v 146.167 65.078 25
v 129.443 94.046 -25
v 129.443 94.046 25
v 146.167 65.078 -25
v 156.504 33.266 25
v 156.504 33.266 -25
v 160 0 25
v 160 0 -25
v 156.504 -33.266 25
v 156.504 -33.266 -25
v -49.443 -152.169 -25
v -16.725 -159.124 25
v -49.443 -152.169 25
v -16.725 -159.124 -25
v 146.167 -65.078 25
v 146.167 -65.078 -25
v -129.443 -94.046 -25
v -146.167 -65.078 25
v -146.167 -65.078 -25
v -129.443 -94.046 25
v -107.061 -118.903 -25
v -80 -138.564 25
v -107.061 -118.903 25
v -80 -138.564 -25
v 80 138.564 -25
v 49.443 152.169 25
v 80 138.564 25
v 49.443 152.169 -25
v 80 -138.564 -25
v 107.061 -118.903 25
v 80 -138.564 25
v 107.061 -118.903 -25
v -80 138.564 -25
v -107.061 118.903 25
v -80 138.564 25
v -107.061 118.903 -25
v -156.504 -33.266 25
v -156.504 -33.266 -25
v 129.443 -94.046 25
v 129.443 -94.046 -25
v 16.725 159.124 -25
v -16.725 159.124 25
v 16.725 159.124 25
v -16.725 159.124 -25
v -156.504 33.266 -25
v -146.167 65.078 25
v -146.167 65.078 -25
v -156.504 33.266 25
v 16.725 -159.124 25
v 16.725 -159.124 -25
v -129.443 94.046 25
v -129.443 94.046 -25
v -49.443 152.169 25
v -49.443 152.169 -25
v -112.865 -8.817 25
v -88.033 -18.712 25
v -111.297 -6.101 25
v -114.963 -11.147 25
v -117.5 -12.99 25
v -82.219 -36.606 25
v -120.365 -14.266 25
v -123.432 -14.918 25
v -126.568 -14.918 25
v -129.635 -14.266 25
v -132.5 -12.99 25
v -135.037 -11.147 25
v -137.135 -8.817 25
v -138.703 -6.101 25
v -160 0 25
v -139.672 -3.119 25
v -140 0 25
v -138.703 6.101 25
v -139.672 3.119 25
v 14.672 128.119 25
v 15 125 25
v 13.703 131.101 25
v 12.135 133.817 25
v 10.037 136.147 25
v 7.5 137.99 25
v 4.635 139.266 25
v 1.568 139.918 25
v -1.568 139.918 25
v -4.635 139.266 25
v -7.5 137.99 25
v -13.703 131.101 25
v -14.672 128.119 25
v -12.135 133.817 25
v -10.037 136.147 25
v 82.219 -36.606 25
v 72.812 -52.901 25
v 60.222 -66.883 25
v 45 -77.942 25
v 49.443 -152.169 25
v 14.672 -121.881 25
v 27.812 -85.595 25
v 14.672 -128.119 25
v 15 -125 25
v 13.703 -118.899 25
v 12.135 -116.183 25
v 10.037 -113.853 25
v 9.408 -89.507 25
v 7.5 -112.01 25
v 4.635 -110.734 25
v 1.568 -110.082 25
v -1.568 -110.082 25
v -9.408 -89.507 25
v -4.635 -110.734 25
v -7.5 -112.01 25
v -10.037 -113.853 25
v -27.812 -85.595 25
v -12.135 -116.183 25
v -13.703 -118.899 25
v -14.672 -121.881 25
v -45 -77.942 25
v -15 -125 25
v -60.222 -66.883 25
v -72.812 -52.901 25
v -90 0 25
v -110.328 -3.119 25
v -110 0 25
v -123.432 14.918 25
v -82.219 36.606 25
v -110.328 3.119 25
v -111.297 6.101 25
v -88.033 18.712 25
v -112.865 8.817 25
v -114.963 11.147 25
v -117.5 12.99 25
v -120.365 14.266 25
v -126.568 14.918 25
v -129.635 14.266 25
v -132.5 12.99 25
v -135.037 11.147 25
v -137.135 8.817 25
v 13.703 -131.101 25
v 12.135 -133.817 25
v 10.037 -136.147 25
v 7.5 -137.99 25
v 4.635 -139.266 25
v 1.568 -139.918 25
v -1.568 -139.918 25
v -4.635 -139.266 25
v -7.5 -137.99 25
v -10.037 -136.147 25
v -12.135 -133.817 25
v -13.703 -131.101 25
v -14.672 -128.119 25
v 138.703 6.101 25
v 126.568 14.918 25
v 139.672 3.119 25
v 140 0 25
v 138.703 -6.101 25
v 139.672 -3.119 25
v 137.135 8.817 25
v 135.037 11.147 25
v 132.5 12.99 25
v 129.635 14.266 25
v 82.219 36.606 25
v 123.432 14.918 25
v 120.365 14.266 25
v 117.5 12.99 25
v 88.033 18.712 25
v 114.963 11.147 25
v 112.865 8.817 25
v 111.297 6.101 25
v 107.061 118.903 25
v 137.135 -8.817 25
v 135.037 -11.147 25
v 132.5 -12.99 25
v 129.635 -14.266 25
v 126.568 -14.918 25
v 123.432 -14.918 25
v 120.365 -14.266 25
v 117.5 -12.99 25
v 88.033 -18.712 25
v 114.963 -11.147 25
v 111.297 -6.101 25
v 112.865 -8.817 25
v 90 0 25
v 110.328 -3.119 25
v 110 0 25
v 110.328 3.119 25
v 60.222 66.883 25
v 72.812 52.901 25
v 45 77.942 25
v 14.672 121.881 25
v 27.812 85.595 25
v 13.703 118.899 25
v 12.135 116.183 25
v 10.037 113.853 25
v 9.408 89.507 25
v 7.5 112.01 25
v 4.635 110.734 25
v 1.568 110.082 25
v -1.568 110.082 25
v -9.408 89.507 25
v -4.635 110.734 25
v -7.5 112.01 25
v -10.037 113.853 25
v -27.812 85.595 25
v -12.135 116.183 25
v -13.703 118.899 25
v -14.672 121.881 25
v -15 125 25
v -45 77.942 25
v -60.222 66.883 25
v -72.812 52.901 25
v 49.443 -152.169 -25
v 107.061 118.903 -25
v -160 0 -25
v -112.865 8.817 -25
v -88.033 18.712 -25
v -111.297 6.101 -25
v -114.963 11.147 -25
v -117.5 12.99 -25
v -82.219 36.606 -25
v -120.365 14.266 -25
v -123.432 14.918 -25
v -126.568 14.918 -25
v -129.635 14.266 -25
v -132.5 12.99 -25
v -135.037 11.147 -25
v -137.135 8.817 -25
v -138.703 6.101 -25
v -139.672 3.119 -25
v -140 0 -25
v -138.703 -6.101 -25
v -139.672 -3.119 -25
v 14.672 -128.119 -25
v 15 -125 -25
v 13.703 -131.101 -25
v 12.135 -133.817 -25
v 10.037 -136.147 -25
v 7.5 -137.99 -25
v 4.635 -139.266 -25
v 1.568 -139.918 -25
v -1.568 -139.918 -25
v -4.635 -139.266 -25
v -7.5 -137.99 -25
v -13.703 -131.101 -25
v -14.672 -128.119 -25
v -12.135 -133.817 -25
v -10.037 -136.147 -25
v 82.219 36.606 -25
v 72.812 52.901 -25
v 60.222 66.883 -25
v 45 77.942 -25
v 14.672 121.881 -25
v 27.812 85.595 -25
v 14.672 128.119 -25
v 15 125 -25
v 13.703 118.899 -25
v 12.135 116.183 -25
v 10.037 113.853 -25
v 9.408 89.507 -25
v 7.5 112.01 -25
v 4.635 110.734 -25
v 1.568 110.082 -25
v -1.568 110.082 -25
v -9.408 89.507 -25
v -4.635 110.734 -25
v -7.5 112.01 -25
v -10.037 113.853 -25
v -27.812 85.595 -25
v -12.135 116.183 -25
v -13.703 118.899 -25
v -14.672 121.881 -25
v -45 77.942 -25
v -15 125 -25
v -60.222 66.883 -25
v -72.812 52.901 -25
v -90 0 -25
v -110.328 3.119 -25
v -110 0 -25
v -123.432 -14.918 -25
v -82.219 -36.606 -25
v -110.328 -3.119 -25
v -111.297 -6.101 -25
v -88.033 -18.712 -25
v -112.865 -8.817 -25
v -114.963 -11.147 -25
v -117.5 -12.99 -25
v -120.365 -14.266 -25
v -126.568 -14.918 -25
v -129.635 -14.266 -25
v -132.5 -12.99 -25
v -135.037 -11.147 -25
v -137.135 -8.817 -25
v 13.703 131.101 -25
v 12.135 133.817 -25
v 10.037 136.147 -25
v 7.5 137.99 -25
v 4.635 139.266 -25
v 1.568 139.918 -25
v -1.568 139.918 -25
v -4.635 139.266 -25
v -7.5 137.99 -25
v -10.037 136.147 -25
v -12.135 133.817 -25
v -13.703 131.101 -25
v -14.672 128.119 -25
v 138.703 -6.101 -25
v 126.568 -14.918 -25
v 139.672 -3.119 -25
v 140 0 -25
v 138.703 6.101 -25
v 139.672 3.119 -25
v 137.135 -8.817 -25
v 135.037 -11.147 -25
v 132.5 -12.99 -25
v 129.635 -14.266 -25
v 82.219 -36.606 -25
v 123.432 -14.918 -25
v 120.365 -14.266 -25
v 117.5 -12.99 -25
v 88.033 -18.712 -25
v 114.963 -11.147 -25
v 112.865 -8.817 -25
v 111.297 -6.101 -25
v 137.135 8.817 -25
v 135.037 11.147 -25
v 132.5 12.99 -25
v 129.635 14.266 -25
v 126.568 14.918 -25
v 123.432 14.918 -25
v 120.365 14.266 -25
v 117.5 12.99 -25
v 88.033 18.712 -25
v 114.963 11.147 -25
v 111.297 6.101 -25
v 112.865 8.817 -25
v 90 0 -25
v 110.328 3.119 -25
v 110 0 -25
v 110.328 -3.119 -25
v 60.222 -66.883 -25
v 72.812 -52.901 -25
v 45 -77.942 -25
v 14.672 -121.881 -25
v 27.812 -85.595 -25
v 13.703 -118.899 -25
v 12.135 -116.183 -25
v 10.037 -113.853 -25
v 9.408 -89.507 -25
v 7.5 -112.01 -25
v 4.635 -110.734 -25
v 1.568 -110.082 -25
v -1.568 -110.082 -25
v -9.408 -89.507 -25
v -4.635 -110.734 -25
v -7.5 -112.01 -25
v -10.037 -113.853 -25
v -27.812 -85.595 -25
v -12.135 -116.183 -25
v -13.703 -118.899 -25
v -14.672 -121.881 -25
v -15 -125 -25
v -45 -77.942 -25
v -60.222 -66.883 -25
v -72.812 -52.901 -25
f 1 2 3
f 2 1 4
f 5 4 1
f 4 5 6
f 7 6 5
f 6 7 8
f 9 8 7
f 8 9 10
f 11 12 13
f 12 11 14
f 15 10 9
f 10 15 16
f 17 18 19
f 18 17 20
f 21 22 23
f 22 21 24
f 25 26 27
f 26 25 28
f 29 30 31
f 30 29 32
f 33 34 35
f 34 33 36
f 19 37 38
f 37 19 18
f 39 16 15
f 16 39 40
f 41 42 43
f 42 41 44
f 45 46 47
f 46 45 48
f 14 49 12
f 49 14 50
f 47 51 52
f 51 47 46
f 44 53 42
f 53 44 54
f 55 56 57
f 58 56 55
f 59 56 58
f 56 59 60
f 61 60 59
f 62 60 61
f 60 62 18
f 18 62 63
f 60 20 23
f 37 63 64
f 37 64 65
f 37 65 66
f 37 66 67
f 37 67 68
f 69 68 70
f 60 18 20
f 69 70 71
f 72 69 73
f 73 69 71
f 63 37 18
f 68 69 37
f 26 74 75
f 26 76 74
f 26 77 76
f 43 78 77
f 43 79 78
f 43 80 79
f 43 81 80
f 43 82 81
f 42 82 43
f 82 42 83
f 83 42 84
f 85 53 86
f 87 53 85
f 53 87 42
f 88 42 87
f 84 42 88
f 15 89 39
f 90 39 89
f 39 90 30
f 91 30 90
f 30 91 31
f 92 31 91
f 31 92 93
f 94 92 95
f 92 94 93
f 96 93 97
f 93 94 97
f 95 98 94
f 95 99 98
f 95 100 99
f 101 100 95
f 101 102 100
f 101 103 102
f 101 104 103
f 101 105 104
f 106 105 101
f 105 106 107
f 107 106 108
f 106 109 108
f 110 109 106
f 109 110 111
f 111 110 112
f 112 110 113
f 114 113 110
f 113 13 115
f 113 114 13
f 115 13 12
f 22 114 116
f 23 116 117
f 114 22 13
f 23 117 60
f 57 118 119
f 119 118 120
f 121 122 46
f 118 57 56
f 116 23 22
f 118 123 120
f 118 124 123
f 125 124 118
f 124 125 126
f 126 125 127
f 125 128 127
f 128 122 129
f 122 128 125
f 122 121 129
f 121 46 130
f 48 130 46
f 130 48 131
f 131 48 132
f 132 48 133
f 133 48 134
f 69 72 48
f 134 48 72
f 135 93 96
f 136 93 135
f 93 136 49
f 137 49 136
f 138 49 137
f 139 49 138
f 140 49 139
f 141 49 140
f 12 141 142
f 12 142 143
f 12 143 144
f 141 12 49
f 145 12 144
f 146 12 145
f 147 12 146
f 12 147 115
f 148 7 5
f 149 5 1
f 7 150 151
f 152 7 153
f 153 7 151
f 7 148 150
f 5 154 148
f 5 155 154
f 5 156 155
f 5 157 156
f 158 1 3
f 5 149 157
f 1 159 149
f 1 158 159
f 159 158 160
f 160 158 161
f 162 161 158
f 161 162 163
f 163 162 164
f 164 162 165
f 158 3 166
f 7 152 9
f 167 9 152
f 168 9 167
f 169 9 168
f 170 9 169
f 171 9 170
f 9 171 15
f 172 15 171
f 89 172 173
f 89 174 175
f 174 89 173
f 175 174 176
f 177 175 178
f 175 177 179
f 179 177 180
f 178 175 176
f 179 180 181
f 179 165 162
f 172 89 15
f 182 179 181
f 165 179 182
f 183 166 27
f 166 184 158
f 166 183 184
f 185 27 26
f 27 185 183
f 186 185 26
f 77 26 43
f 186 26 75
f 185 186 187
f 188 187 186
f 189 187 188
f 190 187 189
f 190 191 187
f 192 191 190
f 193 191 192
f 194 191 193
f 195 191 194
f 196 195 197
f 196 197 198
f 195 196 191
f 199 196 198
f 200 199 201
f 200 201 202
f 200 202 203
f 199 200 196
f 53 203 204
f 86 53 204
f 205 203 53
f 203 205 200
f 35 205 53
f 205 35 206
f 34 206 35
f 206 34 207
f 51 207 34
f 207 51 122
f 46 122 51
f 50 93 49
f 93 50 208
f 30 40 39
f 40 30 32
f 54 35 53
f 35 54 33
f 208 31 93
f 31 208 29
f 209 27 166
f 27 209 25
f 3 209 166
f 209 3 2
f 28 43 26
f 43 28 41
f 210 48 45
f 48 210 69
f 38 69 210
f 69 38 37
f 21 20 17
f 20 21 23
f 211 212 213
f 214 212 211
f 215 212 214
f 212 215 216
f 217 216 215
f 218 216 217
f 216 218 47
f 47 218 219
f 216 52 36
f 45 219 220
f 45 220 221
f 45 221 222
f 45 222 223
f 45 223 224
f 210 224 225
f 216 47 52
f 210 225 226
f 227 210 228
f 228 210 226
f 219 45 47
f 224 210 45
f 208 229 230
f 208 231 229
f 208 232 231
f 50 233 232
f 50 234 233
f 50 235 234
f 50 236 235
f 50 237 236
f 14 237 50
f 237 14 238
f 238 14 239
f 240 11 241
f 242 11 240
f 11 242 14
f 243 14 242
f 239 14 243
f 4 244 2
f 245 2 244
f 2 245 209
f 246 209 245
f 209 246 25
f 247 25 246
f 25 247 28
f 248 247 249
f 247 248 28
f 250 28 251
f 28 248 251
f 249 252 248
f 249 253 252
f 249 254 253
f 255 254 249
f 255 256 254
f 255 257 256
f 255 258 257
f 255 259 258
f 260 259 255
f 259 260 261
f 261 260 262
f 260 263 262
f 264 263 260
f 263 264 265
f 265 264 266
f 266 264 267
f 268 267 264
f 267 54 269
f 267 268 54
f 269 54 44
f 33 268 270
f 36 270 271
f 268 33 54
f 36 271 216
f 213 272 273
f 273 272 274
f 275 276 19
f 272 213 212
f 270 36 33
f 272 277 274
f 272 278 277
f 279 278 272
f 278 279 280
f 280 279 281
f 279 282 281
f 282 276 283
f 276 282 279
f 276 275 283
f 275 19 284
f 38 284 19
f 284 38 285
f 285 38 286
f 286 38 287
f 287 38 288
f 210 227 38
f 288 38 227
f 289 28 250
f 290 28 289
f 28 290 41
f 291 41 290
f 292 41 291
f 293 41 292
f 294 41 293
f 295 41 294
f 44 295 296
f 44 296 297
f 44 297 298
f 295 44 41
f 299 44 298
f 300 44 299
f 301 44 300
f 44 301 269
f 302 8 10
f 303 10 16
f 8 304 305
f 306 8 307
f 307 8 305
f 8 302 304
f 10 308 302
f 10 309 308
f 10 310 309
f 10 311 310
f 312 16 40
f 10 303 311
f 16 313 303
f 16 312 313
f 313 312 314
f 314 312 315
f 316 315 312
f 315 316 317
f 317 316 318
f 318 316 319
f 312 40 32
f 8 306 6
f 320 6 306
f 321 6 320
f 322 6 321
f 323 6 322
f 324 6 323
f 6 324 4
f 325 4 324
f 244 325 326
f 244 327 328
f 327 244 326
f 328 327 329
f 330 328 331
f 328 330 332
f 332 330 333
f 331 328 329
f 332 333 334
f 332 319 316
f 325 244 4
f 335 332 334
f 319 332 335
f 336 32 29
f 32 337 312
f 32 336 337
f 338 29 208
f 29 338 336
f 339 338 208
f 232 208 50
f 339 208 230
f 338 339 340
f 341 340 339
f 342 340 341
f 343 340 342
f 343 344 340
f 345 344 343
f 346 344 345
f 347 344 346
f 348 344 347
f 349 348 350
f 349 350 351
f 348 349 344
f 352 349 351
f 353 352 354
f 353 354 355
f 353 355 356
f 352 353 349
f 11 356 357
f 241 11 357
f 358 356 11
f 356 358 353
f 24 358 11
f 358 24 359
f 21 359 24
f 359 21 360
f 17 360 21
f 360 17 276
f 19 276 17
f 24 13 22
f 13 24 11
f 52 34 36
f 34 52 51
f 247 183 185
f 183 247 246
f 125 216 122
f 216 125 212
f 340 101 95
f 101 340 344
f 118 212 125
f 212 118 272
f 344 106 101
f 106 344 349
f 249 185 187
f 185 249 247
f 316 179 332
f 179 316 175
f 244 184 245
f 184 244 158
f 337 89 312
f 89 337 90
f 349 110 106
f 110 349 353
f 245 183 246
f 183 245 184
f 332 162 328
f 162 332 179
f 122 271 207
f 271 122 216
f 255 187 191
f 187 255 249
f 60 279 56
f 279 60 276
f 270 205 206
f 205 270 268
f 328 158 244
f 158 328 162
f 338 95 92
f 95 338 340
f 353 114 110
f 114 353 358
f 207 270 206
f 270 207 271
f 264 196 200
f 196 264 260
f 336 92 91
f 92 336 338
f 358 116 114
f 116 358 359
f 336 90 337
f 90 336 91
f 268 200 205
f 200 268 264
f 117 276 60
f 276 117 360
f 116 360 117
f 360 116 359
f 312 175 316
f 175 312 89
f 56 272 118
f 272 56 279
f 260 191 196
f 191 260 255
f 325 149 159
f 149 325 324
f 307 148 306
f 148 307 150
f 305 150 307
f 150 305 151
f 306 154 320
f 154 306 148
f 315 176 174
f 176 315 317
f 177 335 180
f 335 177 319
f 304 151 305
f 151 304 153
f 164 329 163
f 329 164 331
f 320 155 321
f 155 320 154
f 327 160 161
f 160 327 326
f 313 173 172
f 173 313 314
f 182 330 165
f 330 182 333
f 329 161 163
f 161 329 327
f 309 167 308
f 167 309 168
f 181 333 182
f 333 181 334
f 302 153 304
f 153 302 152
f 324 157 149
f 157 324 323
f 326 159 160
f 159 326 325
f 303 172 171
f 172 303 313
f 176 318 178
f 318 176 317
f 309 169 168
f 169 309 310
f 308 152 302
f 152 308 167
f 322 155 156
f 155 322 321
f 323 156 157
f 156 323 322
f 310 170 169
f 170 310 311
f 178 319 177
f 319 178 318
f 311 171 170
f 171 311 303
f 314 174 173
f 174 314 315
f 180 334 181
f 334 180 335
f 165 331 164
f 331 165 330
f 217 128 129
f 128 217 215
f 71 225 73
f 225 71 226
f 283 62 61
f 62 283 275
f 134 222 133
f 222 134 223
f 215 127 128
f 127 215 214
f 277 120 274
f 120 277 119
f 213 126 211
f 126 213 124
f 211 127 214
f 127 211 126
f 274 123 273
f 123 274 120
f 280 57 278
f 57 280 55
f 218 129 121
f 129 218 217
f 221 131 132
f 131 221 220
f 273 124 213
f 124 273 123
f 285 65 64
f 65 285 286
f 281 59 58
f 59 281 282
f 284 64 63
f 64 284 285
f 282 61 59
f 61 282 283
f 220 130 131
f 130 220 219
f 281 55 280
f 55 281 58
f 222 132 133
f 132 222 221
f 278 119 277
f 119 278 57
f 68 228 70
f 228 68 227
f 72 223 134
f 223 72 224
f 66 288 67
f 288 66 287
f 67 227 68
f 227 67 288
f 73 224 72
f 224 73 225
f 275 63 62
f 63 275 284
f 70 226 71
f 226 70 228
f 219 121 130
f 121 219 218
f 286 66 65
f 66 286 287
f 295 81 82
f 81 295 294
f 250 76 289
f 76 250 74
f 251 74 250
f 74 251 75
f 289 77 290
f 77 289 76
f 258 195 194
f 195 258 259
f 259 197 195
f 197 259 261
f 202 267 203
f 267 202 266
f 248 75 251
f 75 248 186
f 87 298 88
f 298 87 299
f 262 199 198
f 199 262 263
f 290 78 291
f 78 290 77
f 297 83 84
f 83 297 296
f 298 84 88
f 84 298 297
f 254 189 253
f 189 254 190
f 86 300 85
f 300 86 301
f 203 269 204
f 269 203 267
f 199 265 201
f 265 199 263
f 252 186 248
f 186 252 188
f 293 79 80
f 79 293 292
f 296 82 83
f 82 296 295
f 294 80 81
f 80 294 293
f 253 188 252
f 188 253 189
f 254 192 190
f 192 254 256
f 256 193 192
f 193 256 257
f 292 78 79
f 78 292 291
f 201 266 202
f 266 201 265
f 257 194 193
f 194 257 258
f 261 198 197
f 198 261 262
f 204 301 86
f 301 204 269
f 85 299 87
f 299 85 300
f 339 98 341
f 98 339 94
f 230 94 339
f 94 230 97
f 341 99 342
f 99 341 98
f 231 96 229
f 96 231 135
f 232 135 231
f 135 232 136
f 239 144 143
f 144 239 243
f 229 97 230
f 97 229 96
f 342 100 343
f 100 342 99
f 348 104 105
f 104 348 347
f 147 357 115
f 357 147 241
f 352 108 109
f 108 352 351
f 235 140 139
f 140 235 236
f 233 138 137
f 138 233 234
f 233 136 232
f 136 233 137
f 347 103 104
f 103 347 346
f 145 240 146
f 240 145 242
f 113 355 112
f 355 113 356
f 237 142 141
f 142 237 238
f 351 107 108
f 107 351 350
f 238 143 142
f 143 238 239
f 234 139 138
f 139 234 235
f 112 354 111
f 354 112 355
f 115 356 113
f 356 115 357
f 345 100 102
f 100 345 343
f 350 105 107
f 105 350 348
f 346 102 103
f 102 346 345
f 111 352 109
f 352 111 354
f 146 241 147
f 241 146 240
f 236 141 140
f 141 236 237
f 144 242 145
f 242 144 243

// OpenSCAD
echo(version=version());

inner_radius = 180/2;
outer_radius = 320/2;
holes_radius = 15;
holes_pos = (outer_radius+inner_radius)/2;
height = 50;

difference() {
    cylinder(h=height, r=outer_radius, center=true);
    cylinder(h=height+10, r=inner_radius, center=true);
    
    translate([holes_pos, 0, 0])
    cylinder(h=height+10, r=holes_radius, center= true);
    
    translate([-holes_pos, 0, 0])
    cylinder(h=height+10, r=holes_radius, center= true);
    
    translate([0, holes_pos, 0])
    cylinder(h=height+10, r=holes_radius, center= true);
    
    translate([0, -holes_pos, 0])
    cylinder(h=height+10, r=holes_radius, center= true);
}
